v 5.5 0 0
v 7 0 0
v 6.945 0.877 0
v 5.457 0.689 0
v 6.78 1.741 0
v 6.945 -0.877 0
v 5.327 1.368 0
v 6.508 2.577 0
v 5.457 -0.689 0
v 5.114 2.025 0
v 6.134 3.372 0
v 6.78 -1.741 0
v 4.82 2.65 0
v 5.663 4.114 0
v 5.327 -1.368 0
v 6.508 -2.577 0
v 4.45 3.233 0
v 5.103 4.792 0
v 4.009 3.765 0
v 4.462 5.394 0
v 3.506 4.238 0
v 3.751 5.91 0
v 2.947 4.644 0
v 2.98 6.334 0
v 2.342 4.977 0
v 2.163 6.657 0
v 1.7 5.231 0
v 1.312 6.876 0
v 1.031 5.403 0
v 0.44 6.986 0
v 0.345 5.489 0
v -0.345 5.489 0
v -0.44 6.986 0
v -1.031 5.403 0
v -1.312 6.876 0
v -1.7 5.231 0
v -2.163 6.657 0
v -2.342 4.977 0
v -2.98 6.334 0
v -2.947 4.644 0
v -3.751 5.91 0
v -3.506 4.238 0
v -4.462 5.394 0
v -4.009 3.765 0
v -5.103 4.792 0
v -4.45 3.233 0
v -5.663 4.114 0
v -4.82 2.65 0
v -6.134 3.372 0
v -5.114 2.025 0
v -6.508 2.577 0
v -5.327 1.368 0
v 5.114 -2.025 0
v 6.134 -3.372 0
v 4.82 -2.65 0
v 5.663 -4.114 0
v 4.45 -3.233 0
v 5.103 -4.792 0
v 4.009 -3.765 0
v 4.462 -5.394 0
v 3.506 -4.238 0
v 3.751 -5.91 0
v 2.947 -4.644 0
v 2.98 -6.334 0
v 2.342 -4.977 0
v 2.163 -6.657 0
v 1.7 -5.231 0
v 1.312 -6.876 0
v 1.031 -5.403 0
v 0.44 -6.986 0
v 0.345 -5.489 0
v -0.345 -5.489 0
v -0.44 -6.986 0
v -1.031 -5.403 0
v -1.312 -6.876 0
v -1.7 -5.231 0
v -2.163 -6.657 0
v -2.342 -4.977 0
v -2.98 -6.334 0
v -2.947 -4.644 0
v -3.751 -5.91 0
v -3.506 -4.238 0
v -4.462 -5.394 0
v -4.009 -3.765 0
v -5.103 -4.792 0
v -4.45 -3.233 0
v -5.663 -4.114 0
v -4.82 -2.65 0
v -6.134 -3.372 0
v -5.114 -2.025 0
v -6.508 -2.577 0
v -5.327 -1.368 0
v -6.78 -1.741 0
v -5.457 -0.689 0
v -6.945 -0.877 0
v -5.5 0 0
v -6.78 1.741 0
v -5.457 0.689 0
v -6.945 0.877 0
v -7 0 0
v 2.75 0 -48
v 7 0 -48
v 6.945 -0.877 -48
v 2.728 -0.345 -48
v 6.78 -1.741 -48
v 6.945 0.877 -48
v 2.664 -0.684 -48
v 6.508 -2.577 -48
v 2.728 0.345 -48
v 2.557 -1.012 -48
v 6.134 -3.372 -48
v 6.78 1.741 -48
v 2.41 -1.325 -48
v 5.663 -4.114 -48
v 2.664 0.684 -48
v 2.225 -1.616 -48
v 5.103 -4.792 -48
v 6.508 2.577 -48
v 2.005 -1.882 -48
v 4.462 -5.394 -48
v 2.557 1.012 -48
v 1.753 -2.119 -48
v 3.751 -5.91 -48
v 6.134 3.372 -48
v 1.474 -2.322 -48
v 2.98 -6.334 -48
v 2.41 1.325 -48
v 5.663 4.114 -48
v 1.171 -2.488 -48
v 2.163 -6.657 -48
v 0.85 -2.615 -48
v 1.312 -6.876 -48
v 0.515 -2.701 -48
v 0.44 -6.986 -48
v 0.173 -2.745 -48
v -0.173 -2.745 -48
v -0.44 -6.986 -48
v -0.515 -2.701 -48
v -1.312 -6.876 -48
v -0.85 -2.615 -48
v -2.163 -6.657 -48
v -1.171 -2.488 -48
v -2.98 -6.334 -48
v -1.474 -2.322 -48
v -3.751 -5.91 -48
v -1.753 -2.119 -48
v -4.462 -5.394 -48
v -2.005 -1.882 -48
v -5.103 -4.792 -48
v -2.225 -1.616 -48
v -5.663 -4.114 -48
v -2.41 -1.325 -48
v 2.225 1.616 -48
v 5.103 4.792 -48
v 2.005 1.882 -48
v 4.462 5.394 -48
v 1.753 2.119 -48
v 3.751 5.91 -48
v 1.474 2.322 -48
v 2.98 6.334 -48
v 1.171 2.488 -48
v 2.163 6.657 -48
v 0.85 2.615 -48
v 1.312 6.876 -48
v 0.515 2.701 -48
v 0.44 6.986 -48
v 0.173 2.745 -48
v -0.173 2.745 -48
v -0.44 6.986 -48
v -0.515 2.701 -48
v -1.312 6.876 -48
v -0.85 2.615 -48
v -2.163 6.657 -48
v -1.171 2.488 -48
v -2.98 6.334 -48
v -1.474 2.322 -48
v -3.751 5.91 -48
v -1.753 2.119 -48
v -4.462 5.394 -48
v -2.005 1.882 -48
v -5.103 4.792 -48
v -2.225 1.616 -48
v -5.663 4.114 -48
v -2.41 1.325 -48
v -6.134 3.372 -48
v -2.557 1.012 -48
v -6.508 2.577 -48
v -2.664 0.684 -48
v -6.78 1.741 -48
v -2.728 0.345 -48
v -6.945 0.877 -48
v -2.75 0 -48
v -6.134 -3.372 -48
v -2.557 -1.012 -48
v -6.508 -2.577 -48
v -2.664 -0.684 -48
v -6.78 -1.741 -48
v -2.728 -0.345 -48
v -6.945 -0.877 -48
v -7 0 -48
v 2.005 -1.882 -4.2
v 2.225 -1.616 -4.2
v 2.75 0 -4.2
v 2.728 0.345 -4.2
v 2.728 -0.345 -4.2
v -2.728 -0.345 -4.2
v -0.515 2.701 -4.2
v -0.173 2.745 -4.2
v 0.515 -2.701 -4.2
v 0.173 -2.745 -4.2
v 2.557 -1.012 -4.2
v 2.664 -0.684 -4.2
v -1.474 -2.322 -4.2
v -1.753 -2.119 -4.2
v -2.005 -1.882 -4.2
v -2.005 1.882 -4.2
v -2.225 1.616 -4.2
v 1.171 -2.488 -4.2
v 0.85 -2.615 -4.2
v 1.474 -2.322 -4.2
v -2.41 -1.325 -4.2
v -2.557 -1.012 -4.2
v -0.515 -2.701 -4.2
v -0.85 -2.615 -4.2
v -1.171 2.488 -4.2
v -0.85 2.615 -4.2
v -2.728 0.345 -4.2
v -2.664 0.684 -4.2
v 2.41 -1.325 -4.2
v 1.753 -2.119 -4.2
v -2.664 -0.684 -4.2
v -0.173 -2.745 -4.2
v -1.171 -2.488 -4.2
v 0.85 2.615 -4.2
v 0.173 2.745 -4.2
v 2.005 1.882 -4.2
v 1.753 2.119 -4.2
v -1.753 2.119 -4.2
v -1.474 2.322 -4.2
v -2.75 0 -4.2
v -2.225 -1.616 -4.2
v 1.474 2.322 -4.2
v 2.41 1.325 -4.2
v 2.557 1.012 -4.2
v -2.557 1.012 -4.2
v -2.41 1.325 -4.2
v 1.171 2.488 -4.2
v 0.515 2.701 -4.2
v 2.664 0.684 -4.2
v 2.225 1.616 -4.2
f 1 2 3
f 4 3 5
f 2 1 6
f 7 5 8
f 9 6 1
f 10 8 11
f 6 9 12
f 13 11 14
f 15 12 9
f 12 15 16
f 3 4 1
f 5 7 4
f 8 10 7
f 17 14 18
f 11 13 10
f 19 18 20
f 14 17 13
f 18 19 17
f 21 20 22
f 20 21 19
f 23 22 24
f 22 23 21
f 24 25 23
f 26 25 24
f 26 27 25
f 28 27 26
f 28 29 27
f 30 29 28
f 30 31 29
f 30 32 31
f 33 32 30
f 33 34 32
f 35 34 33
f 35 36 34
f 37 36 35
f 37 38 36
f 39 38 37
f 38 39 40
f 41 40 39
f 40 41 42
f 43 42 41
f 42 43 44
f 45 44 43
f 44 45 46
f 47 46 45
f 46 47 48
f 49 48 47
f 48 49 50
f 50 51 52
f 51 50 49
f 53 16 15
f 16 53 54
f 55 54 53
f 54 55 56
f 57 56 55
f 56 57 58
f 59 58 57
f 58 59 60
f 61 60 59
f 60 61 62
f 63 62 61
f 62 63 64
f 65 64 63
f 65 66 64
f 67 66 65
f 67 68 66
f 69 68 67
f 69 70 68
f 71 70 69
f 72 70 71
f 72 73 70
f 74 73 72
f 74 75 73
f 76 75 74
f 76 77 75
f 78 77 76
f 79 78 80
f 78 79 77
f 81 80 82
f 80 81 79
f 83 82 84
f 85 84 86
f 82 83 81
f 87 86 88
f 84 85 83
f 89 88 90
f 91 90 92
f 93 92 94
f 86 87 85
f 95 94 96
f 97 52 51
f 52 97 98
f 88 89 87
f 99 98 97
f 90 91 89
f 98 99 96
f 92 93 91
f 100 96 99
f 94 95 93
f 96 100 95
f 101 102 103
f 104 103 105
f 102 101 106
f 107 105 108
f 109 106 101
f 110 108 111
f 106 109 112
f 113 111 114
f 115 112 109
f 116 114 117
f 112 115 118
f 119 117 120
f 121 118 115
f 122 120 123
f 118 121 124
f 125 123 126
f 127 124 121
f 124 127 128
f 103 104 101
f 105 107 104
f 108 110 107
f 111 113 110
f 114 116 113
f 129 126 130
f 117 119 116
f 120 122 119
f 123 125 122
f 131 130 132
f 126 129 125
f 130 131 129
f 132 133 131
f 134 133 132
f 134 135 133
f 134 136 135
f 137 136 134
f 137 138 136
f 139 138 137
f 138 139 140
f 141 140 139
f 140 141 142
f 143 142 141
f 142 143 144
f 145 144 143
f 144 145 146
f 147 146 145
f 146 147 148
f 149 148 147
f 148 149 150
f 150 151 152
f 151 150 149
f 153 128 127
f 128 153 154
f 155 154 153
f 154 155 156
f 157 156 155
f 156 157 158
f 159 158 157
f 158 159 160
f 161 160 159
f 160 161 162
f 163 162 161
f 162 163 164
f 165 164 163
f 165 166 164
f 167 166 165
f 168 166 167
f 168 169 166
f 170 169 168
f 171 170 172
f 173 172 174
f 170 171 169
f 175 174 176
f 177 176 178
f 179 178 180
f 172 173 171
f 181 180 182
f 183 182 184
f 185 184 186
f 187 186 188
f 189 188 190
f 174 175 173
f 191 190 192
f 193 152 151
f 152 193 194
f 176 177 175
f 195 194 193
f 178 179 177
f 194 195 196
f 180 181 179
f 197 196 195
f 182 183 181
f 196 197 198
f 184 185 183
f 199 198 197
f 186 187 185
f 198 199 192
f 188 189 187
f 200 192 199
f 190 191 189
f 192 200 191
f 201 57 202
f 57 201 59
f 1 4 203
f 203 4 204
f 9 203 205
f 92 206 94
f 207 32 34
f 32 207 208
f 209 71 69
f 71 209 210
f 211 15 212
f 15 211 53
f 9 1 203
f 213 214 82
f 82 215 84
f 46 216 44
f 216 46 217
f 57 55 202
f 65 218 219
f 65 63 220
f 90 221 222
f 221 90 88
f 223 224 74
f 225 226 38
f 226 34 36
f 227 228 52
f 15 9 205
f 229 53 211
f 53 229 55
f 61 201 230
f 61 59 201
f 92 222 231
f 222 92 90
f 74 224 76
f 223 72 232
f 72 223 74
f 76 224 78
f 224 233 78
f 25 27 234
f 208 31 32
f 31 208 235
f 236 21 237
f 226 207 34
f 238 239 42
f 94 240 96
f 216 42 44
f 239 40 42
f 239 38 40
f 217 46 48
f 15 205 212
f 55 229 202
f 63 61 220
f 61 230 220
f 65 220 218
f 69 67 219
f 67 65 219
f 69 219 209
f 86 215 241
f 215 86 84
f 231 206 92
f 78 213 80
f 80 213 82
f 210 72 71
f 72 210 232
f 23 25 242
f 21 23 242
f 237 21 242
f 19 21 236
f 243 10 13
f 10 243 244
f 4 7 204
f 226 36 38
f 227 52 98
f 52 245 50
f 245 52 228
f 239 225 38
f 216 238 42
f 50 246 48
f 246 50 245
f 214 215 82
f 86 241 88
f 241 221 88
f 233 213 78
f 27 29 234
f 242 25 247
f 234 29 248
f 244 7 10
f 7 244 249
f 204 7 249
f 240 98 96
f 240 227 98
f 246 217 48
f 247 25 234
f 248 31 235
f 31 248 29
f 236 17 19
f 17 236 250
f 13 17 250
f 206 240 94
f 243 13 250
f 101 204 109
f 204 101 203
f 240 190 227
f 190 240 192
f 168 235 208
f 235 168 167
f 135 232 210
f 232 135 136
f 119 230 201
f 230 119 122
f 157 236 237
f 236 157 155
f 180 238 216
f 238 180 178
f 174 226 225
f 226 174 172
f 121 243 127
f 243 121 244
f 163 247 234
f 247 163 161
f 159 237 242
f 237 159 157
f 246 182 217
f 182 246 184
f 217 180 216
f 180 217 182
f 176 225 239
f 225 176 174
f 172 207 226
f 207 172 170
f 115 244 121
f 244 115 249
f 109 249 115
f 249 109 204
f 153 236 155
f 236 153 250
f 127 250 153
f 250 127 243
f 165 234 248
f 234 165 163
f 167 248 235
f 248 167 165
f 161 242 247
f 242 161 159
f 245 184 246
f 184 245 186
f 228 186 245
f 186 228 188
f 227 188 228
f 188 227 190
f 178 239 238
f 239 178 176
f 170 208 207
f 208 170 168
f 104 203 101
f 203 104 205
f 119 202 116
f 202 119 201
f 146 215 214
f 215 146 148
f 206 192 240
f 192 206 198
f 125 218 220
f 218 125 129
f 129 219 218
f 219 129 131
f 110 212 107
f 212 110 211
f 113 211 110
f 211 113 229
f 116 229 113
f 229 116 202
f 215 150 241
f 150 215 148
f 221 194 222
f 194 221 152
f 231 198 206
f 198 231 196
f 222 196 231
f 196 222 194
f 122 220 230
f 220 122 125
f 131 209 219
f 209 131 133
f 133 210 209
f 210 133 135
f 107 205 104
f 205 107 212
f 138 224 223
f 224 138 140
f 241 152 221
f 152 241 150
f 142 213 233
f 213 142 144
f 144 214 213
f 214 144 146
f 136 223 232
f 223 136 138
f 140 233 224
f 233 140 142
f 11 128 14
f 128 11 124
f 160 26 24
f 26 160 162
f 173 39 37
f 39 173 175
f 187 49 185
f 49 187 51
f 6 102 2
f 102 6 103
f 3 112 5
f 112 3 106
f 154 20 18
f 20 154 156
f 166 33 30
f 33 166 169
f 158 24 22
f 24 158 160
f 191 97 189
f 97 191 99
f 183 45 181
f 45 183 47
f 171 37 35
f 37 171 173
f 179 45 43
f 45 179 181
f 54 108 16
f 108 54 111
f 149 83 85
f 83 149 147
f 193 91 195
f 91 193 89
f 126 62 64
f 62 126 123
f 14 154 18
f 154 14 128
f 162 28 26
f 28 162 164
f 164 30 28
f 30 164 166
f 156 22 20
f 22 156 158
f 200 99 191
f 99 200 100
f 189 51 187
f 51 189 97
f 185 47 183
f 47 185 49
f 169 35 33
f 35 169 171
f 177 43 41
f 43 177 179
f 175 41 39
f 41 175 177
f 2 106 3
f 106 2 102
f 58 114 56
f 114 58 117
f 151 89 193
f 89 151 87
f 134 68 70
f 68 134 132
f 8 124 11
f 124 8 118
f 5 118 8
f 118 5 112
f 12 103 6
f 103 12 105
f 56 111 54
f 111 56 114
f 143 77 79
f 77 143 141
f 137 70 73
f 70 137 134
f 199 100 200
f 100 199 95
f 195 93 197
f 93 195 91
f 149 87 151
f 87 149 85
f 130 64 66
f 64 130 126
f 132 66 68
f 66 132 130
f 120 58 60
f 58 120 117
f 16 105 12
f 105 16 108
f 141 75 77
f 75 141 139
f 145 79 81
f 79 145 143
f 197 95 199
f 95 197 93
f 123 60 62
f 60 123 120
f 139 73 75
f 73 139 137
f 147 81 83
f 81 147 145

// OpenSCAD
$fn = 50;


difference() {
	union() {
		translate(v = [0, 0, -48.0000000000]) {
			cylinder(h = 48, r = 7.0000000000);
		}
		cylinder(h = 0, r = 16.0000000000);
	}
	union() {
		translate(v = [0, 0, 0]) {
			rotate(a = [0, 0, 0]) {
				difference() {
					union() {
						#translate(v = [0, 0, -48.0000000000]) {
							cylinder(h = 48, r = 2.2500000000);
						}
						#translate(v = [0, 0, -4.2000000000]) {
							cylinder(h = 4.2000000000, r1 = 2.7500000000, r2 = 5.5000000000);
						}
						#translate(v = [0, 0, -48.0000000000]) {
							cylinder(h = 48, r = 2.7500000000);
						}
						#translate(v = [0, 0, -48.0000000000]) {
							cylinder(h = 48, r = 2.2500000000);
						}
					}
					union();
				}
			}
		}
	}
}
